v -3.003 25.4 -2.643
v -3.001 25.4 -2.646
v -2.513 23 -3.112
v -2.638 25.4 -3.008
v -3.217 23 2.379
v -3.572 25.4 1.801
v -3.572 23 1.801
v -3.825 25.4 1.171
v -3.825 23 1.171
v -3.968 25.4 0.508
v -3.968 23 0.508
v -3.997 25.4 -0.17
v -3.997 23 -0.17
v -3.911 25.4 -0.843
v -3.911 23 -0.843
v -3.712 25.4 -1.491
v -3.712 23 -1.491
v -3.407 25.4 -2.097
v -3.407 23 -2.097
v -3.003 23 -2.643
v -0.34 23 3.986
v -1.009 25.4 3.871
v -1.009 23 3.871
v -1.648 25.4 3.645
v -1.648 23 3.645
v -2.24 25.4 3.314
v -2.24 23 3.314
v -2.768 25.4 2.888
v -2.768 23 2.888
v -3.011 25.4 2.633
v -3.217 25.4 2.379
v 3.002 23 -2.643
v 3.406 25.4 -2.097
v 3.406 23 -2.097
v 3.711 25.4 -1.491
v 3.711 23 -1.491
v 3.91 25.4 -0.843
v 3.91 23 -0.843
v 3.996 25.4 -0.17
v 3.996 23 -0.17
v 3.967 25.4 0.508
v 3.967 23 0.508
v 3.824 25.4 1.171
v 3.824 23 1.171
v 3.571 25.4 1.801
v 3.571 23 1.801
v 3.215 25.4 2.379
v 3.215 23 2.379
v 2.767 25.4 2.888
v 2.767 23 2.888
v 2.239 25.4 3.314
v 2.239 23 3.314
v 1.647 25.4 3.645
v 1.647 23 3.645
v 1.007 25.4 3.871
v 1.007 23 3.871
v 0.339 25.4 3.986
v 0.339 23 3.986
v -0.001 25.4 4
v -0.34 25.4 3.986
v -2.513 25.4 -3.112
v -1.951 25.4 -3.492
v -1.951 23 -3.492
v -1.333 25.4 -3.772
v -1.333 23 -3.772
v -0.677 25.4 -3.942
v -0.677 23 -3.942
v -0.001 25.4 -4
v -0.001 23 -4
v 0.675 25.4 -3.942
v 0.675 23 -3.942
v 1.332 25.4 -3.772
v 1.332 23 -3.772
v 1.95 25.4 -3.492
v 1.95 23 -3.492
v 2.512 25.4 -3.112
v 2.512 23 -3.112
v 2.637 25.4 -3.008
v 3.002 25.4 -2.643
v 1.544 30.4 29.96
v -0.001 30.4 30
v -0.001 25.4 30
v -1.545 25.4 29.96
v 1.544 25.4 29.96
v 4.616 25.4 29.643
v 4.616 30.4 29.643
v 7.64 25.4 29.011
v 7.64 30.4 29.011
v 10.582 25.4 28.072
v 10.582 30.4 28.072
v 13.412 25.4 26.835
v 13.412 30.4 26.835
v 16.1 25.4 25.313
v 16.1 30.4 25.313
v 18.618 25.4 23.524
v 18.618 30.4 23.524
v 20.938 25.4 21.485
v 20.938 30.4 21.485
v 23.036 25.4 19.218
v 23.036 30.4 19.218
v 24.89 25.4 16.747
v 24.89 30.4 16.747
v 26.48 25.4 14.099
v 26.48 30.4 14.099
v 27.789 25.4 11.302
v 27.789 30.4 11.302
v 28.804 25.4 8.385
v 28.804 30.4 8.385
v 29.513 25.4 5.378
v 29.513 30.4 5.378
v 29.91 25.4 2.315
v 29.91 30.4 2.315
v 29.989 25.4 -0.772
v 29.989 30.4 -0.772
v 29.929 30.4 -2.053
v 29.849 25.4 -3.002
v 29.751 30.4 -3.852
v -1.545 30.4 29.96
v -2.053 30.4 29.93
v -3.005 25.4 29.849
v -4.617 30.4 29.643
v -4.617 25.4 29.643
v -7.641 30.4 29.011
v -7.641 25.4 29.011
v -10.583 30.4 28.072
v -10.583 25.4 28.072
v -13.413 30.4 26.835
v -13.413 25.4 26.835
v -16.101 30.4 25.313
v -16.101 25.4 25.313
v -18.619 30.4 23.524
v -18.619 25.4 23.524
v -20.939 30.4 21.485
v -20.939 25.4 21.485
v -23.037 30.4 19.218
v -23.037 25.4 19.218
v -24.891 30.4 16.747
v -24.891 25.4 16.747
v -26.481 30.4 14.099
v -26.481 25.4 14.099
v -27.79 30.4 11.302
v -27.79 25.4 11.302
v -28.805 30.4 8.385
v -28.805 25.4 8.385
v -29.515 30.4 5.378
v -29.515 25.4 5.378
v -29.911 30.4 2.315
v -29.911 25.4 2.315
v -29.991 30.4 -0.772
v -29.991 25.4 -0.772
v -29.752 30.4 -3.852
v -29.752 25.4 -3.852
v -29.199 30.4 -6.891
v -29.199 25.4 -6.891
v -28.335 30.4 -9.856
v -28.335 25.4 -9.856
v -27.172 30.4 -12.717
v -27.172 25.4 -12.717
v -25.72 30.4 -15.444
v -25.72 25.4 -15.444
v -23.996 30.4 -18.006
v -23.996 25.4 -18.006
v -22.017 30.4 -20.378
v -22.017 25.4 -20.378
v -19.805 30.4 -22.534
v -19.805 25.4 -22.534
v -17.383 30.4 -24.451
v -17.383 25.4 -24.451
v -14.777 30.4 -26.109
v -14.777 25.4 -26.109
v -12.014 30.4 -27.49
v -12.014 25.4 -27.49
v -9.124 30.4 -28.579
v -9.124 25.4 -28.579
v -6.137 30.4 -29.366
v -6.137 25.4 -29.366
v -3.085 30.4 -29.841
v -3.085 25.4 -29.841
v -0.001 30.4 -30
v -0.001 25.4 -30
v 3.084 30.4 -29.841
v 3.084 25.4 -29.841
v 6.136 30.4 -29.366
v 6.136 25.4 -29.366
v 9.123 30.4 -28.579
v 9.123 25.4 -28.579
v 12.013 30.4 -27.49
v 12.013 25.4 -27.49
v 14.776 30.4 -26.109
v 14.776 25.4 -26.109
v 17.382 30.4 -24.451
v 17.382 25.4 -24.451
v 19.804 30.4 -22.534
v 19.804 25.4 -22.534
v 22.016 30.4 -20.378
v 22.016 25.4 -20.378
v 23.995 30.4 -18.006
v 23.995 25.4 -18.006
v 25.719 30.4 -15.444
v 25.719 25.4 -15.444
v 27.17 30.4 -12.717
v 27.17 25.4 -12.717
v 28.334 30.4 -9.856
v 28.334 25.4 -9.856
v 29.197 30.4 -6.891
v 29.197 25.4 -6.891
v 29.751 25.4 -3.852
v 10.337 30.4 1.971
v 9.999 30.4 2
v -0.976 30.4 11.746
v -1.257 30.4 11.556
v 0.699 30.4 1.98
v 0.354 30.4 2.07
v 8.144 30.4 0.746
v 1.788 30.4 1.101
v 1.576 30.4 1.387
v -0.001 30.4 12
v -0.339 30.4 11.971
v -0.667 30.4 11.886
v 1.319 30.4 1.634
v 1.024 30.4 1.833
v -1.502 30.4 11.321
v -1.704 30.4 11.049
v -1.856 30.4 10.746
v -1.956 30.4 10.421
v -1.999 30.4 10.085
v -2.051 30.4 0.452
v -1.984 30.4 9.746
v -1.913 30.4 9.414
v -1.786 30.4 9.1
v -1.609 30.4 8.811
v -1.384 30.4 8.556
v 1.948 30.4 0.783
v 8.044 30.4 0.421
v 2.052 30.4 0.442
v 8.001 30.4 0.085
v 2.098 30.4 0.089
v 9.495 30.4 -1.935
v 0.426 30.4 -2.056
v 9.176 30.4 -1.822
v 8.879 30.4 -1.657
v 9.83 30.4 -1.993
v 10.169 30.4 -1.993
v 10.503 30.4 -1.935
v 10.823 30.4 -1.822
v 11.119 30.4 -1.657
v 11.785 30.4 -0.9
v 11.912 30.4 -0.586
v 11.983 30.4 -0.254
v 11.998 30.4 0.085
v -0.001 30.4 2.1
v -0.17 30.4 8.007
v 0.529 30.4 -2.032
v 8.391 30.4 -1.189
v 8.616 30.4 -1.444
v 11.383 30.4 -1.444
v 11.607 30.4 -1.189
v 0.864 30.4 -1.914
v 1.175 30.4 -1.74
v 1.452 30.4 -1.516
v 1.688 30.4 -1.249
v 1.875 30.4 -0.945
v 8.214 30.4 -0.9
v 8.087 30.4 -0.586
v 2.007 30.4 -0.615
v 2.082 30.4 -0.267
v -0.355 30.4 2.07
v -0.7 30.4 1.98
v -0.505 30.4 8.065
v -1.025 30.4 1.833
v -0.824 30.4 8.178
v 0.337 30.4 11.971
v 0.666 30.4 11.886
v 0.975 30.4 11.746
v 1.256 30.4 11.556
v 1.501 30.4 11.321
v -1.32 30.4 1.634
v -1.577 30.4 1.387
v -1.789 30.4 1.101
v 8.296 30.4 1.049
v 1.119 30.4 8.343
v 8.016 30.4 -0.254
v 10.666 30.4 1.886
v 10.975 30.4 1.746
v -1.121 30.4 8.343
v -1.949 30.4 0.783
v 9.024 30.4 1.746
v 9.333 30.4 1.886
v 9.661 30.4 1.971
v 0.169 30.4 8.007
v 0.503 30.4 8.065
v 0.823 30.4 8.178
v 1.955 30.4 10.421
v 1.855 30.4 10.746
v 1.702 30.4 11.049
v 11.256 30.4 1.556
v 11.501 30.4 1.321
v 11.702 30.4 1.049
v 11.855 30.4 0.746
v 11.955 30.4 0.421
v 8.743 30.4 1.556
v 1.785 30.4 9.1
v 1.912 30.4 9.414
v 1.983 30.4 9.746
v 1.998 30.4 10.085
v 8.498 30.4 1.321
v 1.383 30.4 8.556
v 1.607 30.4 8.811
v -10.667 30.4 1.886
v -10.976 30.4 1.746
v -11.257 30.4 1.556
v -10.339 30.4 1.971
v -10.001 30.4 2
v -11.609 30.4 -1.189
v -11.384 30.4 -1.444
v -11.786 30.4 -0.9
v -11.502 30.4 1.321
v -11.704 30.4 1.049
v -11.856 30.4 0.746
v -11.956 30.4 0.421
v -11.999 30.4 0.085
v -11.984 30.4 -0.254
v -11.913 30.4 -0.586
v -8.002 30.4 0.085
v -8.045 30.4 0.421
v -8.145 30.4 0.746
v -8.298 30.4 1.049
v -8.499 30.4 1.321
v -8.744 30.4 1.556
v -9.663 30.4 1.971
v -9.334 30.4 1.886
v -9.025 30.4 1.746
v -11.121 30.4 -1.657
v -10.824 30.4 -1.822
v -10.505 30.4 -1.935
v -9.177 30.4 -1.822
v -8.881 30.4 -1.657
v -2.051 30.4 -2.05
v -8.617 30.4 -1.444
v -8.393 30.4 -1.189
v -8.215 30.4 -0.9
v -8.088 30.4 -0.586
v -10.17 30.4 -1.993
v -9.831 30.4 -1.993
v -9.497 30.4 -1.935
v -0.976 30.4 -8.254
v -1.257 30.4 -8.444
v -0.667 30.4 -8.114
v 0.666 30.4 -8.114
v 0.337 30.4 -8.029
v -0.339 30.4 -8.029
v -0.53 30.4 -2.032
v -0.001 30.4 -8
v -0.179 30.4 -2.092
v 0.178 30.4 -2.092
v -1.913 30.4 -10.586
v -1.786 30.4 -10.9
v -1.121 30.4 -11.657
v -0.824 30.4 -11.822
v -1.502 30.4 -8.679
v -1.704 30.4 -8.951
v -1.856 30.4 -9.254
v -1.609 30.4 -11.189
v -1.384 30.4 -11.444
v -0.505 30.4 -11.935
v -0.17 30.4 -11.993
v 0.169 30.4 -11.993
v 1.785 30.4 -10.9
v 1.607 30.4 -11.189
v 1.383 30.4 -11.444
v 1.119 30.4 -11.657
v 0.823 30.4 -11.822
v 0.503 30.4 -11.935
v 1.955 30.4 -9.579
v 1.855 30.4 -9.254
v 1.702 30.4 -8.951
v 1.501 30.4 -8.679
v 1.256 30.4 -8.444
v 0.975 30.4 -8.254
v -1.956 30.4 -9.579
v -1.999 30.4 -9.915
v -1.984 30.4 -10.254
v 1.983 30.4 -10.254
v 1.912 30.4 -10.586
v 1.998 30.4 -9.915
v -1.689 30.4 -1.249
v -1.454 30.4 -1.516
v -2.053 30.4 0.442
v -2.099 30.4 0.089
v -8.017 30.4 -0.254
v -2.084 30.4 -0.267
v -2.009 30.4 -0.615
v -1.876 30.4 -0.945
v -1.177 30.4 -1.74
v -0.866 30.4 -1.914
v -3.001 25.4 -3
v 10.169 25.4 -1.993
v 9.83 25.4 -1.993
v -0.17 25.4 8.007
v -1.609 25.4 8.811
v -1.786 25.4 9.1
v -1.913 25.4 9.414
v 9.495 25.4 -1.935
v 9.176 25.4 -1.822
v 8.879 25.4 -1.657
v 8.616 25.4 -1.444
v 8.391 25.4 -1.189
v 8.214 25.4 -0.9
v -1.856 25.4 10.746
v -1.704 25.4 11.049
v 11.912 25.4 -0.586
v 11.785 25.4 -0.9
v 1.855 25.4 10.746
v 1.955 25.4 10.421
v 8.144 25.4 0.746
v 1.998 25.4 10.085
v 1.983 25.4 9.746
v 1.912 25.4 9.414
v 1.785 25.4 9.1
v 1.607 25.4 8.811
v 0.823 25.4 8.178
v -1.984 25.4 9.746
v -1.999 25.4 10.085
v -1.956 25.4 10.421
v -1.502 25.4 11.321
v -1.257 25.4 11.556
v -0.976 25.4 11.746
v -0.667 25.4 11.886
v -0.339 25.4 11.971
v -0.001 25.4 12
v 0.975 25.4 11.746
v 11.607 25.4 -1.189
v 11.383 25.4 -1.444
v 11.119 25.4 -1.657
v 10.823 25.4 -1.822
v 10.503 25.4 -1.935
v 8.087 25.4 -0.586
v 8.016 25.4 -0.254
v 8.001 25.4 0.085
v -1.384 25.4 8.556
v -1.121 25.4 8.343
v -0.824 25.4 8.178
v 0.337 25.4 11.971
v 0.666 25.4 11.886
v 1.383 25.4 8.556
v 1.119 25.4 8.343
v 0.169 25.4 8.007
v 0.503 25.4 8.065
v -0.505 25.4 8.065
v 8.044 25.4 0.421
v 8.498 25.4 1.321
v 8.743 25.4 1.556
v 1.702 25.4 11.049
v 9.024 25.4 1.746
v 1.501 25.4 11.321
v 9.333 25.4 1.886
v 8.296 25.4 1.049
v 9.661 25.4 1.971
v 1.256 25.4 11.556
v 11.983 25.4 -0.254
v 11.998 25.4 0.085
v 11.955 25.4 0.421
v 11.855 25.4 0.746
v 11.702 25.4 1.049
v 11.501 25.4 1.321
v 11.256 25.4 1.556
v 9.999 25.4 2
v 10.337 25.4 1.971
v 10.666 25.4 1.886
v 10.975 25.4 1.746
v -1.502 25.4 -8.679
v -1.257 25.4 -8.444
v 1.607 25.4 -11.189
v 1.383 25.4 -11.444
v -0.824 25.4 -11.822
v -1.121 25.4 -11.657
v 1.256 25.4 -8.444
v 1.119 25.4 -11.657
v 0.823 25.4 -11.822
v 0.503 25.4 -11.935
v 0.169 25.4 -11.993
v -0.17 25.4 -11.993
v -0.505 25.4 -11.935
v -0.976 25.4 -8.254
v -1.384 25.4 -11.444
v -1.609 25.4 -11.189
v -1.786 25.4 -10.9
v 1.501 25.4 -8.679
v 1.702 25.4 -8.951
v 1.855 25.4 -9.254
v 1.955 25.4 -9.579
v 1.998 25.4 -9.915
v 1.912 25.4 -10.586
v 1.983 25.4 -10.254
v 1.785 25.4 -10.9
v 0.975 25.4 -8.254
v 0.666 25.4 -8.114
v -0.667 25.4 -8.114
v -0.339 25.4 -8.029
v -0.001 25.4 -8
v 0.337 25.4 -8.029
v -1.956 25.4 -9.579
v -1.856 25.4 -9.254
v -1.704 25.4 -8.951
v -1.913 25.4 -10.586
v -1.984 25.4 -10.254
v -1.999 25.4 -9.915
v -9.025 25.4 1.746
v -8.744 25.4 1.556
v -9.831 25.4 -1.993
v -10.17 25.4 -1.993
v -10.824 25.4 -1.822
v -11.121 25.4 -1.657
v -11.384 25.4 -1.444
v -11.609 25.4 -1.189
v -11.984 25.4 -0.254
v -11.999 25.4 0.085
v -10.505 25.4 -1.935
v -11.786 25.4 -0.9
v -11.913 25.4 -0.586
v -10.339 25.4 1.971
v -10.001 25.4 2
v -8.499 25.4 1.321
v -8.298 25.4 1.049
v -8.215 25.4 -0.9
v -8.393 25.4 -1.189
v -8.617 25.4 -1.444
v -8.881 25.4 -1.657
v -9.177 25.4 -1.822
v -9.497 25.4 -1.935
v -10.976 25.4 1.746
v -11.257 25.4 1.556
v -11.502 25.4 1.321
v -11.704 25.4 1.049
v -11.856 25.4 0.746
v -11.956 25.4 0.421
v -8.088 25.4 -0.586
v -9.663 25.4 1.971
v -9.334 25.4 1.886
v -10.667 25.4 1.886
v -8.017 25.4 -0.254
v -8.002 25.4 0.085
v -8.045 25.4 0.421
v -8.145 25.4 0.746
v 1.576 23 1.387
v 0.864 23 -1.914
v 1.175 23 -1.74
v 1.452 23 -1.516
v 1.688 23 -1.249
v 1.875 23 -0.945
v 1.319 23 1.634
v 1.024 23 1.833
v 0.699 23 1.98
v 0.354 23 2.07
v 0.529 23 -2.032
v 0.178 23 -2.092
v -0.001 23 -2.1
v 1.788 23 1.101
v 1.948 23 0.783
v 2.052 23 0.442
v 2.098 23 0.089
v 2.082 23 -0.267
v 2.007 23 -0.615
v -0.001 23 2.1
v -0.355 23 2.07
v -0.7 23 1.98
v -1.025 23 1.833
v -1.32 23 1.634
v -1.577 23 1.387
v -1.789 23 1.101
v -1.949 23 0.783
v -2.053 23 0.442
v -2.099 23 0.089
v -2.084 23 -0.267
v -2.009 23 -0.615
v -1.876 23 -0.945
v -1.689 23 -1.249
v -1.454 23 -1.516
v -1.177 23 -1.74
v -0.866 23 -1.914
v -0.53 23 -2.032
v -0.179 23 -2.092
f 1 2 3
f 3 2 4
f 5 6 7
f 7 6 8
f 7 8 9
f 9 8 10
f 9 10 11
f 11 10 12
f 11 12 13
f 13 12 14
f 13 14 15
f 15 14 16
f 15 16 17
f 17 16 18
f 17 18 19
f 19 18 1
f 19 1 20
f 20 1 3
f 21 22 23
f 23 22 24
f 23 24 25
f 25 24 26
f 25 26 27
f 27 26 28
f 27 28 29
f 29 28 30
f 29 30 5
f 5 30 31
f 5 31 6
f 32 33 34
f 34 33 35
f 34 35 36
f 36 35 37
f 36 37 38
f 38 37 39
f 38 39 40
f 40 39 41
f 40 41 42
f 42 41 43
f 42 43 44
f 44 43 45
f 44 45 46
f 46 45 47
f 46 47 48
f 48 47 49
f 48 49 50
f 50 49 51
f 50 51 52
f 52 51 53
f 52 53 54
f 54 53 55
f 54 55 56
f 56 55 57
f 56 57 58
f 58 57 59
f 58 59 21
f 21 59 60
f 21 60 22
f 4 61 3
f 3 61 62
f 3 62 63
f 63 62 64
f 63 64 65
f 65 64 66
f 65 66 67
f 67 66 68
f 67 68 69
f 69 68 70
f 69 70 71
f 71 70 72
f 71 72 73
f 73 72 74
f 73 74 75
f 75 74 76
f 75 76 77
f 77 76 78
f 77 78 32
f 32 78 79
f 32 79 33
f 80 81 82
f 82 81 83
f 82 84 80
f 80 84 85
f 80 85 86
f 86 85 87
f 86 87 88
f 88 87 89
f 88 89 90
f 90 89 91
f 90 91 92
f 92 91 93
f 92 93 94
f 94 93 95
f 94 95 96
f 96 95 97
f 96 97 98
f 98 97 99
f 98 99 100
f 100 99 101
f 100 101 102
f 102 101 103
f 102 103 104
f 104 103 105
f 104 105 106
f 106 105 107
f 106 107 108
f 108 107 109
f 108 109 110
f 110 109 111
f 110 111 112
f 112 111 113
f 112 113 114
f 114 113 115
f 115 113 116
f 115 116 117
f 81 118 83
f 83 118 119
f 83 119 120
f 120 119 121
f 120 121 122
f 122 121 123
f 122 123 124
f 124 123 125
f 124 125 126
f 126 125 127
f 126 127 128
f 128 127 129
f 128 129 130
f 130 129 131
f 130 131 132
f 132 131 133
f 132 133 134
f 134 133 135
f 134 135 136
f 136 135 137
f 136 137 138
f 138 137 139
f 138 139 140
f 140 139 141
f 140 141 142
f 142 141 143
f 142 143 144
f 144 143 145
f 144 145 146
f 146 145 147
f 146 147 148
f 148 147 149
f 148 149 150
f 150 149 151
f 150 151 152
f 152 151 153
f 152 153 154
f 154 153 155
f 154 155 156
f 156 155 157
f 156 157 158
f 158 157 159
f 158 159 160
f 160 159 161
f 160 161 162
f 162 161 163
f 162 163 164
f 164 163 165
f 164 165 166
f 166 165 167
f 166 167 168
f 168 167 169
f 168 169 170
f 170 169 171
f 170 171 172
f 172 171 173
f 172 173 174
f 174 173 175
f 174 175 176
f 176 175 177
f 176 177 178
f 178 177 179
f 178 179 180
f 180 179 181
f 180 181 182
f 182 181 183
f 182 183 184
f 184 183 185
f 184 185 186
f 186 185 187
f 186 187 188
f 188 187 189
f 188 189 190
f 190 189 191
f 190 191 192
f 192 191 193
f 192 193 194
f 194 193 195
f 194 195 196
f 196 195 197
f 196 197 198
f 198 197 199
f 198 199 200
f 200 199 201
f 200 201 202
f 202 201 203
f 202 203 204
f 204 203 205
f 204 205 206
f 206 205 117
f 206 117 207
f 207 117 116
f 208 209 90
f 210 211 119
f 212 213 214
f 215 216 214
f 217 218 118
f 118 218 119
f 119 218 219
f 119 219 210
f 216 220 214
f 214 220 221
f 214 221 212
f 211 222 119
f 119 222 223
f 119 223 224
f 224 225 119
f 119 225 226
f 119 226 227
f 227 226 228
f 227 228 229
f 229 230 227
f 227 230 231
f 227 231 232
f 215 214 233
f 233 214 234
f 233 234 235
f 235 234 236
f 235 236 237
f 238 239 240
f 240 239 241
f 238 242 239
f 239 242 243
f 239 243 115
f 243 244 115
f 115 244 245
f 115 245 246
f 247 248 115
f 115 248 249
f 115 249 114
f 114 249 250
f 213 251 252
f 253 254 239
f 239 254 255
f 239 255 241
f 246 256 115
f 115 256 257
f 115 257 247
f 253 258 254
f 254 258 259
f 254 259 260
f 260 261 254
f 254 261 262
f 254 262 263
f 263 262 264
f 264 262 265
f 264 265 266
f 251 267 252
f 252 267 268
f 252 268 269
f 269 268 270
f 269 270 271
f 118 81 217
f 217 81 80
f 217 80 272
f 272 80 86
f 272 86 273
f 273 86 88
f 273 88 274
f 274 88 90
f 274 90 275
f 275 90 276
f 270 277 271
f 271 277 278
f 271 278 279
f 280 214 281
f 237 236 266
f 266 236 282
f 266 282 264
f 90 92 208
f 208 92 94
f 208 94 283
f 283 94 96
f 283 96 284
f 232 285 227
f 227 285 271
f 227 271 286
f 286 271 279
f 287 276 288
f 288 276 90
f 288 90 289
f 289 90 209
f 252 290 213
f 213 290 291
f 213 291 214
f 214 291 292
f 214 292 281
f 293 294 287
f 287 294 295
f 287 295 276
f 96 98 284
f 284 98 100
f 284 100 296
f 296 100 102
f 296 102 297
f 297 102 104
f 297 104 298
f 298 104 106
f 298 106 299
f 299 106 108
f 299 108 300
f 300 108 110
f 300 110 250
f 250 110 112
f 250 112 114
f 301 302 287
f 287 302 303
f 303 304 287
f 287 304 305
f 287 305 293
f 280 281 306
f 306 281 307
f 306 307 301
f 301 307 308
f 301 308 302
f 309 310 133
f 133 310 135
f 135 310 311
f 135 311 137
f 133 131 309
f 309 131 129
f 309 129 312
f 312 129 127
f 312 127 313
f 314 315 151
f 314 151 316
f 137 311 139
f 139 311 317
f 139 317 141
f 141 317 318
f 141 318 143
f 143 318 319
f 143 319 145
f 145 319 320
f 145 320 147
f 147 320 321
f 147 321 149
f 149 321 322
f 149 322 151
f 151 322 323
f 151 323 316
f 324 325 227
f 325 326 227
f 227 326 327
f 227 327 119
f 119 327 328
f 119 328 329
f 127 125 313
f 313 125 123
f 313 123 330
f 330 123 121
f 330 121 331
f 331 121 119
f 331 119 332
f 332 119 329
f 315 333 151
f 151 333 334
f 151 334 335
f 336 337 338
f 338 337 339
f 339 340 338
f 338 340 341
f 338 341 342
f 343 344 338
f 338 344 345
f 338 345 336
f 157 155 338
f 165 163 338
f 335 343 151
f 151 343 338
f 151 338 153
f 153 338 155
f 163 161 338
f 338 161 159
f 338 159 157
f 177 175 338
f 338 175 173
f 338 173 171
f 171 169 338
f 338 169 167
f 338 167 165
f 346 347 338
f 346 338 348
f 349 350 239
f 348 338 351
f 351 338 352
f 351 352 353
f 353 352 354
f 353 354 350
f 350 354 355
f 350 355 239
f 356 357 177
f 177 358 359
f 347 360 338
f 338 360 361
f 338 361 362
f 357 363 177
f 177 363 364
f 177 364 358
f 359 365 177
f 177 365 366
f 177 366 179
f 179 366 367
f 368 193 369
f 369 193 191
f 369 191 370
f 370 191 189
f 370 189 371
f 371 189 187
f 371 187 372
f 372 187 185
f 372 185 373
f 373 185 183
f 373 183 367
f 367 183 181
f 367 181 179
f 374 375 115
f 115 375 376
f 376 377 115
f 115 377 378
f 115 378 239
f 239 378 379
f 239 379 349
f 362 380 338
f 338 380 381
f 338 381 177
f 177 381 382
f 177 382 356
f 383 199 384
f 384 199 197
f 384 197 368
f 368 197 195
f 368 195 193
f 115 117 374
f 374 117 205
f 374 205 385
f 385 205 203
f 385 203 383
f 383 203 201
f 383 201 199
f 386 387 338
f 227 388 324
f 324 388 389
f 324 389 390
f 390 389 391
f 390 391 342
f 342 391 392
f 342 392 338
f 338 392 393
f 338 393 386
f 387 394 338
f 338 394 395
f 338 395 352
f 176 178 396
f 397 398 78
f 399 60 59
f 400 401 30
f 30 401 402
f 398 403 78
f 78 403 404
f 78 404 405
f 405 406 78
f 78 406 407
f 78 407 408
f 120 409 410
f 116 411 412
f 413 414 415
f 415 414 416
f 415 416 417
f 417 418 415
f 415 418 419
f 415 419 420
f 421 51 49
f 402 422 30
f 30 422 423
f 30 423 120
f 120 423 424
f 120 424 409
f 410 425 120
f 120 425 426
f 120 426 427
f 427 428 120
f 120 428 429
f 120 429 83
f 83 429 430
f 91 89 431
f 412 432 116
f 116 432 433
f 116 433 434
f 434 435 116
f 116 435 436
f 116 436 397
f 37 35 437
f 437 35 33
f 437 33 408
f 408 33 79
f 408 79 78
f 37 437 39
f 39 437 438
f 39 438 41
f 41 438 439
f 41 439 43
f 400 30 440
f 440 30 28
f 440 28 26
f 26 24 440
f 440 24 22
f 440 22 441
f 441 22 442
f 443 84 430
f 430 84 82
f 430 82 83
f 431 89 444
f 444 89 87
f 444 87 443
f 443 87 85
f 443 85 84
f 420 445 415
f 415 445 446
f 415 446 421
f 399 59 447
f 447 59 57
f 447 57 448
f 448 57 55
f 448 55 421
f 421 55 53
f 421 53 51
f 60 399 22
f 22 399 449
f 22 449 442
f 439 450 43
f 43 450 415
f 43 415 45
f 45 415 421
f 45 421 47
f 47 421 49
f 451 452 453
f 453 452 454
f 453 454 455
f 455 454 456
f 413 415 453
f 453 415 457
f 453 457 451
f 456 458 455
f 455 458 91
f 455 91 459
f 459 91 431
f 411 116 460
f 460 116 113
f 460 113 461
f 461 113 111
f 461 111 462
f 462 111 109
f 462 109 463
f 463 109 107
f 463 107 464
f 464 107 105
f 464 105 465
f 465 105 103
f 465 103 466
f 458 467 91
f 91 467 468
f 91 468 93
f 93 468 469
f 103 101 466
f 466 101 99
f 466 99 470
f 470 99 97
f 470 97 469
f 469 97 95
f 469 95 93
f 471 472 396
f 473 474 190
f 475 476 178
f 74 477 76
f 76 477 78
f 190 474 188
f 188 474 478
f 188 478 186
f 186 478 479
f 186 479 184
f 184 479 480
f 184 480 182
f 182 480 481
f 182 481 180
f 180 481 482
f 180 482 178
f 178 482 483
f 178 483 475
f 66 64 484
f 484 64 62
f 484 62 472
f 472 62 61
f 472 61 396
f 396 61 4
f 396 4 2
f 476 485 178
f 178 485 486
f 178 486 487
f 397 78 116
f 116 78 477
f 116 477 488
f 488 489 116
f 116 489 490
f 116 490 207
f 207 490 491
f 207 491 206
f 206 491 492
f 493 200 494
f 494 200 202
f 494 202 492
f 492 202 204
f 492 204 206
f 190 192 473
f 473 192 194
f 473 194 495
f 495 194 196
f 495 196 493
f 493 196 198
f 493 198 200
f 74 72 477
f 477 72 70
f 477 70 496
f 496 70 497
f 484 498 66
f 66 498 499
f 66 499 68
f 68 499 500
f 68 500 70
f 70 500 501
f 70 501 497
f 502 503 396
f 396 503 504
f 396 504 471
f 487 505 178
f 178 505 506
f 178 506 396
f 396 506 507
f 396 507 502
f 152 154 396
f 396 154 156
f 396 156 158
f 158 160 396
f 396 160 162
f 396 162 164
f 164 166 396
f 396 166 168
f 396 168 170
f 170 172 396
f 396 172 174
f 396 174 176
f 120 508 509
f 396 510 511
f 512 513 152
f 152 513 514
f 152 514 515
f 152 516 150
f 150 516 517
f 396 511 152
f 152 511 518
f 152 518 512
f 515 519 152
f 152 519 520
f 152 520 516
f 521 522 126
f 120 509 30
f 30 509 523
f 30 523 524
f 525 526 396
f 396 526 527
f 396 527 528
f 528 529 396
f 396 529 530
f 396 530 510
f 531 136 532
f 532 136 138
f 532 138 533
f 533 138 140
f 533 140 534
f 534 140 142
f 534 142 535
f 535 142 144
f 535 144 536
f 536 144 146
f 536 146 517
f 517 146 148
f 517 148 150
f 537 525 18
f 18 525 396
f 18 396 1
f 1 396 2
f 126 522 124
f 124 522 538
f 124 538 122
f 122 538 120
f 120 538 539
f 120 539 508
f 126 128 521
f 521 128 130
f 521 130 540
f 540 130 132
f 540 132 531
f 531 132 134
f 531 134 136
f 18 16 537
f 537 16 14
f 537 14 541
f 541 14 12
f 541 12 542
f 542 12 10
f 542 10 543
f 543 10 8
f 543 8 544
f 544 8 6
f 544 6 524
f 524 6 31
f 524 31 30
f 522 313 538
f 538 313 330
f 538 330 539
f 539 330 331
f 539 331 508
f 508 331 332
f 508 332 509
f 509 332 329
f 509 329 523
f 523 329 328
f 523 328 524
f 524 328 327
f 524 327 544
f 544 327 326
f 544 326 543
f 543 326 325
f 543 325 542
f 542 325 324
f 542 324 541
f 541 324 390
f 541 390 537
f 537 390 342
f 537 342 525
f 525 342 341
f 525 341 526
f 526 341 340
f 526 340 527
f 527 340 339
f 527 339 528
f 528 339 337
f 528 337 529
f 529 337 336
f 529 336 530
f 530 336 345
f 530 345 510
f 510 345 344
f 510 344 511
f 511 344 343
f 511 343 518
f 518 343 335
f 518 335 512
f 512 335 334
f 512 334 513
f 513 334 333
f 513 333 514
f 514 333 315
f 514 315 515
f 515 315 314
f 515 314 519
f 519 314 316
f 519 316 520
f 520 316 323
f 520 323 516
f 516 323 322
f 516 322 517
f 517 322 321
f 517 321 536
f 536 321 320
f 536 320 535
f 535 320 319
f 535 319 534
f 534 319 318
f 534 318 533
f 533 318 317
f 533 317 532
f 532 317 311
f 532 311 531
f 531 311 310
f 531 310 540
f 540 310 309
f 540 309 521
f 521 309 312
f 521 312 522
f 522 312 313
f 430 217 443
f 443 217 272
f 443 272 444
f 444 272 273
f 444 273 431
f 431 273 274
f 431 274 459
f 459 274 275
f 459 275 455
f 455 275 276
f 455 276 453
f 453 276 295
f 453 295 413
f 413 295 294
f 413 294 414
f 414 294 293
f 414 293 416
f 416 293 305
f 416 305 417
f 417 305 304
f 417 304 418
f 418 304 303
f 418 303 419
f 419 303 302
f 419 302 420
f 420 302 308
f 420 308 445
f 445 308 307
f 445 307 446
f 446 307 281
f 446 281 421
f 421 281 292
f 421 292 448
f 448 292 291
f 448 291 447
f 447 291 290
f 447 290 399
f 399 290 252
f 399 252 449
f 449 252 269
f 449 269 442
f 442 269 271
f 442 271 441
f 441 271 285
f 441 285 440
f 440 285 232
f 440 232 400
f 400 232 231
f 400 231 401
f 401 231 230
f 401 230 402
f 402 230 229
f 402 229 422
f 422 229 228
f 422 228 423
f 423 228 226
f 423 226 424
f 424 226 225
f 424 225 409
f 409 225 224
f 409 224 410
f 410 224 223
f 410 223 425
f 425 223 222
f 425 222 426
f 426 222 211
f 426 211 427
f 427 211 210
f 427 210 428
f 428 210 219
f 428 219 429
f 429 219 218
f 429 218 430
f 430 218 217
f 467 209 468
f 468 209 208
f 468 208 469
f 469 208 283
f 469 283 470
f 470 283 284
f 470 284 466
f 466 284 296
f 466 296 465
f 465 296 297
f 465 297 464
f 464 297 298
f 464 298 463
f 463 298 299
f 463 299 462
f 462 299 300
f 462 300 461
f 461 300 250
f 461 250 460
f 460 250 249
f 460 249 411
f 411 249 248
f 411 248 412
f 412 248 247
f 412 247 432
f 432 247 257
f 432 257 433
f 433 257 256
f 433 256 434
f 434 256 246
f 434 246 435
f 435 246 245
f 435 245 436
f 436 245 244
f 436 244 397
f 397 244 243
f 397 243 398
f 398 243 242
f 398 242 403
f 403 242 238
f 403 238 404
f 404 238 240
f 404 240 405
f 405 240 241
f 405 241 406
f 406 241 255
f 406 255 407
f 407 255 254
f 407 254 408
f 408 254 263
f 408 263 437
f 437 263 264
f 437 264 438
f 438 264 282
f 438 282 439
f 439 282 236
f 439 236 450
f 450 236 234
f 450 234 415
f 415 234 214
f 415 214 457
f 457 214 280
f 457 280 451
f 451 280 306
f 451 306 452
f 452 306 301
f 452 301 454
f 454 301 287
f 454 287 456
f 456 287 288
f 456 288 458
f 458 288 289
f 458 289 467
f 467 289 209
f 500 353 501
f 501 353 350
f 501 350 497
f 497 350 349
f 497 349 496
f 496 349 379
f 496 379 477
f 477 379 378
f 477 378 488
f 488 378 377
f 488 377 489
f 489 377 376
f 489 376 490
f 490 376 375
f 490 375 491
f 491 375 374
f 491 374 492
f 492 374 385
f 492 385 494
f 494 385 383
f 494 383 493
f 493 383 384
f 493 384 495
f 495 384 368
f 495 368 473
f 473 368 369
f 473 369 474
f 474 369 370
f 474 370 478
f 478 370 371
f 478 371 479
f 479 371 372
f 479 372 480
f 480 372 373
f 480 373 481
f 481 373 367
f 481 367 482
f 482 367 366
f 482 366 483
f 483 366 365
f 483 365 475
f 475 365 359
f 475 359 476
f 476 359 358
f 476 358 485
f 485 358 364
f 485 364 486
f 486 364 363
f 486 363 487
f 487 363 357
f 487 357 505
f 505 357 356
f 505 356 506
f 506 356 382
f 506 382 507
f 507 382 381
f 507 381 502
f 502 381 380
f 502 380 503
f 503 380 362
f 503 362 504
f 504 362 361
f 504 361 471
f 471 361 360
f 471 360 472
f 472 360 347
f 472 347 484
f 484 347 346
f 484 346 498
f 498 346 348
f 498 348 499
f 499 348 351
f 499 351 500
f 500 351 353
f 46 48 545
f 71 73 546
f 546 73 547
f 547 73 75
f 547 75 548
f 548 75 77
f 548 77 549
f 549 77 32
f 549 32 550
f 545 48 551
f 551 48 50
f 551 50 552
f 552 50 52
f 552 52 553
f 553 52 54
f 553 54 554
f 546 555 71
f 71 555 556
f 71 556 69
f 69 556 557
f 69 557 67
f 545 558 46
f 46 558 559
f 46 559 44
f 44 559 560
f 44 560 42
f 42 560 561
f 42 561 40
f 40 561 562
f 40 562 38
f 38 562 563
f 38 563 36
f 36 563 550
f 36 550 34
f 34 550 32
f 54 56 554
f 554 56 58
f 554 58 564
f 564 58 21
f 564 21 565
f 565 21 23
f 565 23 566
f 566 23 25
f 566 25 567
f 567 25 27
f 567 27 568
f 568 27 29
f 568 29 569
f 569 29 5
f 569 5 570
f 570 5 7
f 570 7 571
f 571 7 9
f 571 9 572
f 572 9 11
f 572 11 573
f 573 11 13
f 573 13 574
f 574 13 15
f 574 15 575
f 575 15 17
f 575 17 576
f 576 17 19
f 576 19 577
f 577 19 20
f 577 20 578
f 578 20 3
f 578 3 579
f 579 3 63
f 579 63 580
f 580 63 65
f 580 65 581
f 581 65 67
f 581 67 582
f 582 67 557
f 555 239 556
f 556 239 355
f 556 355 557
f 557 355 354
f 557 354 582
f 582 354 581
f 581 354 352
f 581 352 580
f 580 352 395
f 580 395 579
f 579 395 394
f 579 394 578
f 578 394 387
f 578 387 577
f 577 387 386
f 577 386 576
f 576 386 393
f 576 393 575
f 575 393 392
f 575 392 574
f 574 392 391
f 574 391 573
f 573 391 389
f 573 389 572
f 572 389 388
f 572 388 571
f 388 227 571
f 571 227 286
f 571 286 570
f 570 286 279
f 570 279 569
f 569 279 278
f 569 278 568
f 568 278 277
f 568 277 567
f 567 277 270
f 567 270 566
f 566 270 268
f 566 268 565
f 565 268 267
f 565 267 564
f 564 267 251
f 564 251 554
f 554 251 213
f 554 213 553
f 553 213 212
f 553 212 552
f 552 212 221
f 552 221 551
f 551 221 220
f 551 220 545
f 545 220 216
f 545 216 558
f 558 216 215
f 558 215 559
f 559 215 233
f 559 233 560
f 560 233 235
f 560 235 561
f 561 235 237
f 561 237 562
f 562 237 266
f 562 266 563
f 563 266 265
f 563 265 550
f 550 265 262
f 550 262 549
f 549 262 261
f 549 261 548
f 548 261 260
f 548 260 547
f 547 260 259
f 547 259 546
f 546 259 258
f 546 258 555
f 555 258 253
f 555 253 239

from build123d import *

# Parameters (mm, degrees)
CROQUIS1_R              = 2.05
CROQUIS1_R_2            = 4
SALIENTE_EXTRUIR1_DEPTH = 25.4
CROQUIS2_R              = 30
SALIENTE_EXTRUIR2_DEPTH = 5
CROQUIS3_R              = 2
CORTAR_EXTRUIR1_DEPTH   = 7.5
CROQUIS7_R              = 3.5
CORTAR_EXTRUIR3_DEPTH   = 3
CROQUIS8_W              = 62.698346187
CROQUIS8_H              = 3
CORTAR_EXTRUIR5_DEPTH   = 15
CROQUIS1_3_R            = 2.05
CORTAR_EXTRUIR6_DEPTH   = 7.4
SALIENTE_EXTRUIR3_DEPTH = 10
CROQUIS6_R              = 1.25
CORTAR_EXTRUIR7_DEPTH   = 10
CROQUIS10_R             = 4.00257807
CORTAR_EXTRUIR8_DEPTH   = 20
CROQUIS11_R             = 2.1
CORTAR_EXTRUIR9_DEPTH   = 20


with BuildPart() as part:
    # Croquis1 → Saliente-Extruir1 (new body)
    with BuildSketch(Plane(origin=(0, 0, 0), x_dir=(1, 0, 0), z_dir=(0, 1, 0))):
        Circle(CROQUIS1_R)
        Circle(CROQUIS1_R_2)
        Circle(CROQUIS1_R, mode=Mode.SUBTRACT)
    extrude(amount=SALIENTE_EXTRUIR1_DEPTH)

    # Croquis2 → Saliente-Extruir2 (add)
    with BuildSketch(Plane(origin=(0, 25.4, 0), x_dir=(1, 0, 0), z_dir=(0, 1, 0))):
        Circle(CROQUIS2_R)
    extrude(amount=SALIENTE_EXTRUIR2_DEPTH)

    # Croquis3 → Cortar-Extruir1 (cut)
    with BuildSketch(Plane(origin=(0, 30.4, 0), x_dir=(1, 0, 0), z_dir=(0, 1, 0))):
        with Locations((0, 10)):
            Circle(CROQUIS3_R)
        with Locations((10, 0)):
            Circle(CROQUIS3_R)
        with Locations((0, -10)):
            Circle(CROQUIS3_R)
        with Locations((-10, 0)):
            Circle(CROQUIS3_R)
    extrude(amount=-CORTAR_EXTRUIR1_DEPTH, mode=Mode.SUBTRACT)

    # Croquis7 → Cortar-Extruir3 (cut)
    with BuildSketch(Plane.XZ):
        Circle(CROQUIS7_R)
    extrude(amount=-CORTAR_EXTRUIR3_DEPTH, mode=Mode.SUBTRACT)

    # Croquis8 → Cortar-Extruir5 (cut, symmetric)
    with BuildSketch(Plane(origin=(0, 0, 0), x_dir=(0, 0, -1), z_dir=(1, 0, 0))):
        with Locations((4.276742622, 1.5)):
            Rectangle(CROQUIS8_W, CROQUIS8_H)
    extrude(amount=CORTAR_EXTRUIR5_DEPTH, both=True, mode=Mode.SUBTRACT)

    # Croquis1<3> → Cortar-Extruir6 (cut)
    with BuildSketch(Plane(origin=(0, 0, 0), x_dir=(1, 0, 0), z_dir=(0, 1, 0))):
        Circle(CROQUIS1_3_R)
    extrude(amount=CORTAR_EXTRUIR6_DEPTH, mode=Mode.SUBTRACT)

    # Croquis9 → Saliente-Extruir3 (add)
    with BuildSketch(Plane.XZ.offset(-3)):
        with BuildLine():
            ThreePointArc((1.281600562, 1.6), (0, 2.05), (-1.281600562, 1.6))
            Line((-1.281600562, 1.6), (1.281600562, 1.6))
        make_face()
    extrude(amount=-SALIENTE_EXTRUIR3_DEPTH)

    # Croquis6 → Cortar-Extruir7 (cut)
    with BuildSketch(Plane.XY):
        with Locations((0, 5)):
            Circle(CROQUIS6_R)
    extrude(amount=CORTAR_EXTRUIR7_DEPTH, mode=Mode.SUBTRACT)

    # Croquis10 → Cortar-Extruir8 (cut)
    with BuildSketch(Plane.XZ.offset(-3)):
        Circle(CROQUIS10_R)
    extrude(amount=-CORTAR_EXTRUIR8_DEPTH, mode=Mode.SUBTRACT)

    # Croquis11 → Cortar-Extruir9 (cut)
    with BuildSketch(Plane(origin=(0, 30.4, 0), x_dir=(1, 0, 0), z_dir=(0, 1, 0))):
        Circle(CROQUIS11_R)
    extrude(amount=-CORTAR_EXTRUIR9_DEPTH, mode=Mode.SUBTRACT)


solid = part.part
